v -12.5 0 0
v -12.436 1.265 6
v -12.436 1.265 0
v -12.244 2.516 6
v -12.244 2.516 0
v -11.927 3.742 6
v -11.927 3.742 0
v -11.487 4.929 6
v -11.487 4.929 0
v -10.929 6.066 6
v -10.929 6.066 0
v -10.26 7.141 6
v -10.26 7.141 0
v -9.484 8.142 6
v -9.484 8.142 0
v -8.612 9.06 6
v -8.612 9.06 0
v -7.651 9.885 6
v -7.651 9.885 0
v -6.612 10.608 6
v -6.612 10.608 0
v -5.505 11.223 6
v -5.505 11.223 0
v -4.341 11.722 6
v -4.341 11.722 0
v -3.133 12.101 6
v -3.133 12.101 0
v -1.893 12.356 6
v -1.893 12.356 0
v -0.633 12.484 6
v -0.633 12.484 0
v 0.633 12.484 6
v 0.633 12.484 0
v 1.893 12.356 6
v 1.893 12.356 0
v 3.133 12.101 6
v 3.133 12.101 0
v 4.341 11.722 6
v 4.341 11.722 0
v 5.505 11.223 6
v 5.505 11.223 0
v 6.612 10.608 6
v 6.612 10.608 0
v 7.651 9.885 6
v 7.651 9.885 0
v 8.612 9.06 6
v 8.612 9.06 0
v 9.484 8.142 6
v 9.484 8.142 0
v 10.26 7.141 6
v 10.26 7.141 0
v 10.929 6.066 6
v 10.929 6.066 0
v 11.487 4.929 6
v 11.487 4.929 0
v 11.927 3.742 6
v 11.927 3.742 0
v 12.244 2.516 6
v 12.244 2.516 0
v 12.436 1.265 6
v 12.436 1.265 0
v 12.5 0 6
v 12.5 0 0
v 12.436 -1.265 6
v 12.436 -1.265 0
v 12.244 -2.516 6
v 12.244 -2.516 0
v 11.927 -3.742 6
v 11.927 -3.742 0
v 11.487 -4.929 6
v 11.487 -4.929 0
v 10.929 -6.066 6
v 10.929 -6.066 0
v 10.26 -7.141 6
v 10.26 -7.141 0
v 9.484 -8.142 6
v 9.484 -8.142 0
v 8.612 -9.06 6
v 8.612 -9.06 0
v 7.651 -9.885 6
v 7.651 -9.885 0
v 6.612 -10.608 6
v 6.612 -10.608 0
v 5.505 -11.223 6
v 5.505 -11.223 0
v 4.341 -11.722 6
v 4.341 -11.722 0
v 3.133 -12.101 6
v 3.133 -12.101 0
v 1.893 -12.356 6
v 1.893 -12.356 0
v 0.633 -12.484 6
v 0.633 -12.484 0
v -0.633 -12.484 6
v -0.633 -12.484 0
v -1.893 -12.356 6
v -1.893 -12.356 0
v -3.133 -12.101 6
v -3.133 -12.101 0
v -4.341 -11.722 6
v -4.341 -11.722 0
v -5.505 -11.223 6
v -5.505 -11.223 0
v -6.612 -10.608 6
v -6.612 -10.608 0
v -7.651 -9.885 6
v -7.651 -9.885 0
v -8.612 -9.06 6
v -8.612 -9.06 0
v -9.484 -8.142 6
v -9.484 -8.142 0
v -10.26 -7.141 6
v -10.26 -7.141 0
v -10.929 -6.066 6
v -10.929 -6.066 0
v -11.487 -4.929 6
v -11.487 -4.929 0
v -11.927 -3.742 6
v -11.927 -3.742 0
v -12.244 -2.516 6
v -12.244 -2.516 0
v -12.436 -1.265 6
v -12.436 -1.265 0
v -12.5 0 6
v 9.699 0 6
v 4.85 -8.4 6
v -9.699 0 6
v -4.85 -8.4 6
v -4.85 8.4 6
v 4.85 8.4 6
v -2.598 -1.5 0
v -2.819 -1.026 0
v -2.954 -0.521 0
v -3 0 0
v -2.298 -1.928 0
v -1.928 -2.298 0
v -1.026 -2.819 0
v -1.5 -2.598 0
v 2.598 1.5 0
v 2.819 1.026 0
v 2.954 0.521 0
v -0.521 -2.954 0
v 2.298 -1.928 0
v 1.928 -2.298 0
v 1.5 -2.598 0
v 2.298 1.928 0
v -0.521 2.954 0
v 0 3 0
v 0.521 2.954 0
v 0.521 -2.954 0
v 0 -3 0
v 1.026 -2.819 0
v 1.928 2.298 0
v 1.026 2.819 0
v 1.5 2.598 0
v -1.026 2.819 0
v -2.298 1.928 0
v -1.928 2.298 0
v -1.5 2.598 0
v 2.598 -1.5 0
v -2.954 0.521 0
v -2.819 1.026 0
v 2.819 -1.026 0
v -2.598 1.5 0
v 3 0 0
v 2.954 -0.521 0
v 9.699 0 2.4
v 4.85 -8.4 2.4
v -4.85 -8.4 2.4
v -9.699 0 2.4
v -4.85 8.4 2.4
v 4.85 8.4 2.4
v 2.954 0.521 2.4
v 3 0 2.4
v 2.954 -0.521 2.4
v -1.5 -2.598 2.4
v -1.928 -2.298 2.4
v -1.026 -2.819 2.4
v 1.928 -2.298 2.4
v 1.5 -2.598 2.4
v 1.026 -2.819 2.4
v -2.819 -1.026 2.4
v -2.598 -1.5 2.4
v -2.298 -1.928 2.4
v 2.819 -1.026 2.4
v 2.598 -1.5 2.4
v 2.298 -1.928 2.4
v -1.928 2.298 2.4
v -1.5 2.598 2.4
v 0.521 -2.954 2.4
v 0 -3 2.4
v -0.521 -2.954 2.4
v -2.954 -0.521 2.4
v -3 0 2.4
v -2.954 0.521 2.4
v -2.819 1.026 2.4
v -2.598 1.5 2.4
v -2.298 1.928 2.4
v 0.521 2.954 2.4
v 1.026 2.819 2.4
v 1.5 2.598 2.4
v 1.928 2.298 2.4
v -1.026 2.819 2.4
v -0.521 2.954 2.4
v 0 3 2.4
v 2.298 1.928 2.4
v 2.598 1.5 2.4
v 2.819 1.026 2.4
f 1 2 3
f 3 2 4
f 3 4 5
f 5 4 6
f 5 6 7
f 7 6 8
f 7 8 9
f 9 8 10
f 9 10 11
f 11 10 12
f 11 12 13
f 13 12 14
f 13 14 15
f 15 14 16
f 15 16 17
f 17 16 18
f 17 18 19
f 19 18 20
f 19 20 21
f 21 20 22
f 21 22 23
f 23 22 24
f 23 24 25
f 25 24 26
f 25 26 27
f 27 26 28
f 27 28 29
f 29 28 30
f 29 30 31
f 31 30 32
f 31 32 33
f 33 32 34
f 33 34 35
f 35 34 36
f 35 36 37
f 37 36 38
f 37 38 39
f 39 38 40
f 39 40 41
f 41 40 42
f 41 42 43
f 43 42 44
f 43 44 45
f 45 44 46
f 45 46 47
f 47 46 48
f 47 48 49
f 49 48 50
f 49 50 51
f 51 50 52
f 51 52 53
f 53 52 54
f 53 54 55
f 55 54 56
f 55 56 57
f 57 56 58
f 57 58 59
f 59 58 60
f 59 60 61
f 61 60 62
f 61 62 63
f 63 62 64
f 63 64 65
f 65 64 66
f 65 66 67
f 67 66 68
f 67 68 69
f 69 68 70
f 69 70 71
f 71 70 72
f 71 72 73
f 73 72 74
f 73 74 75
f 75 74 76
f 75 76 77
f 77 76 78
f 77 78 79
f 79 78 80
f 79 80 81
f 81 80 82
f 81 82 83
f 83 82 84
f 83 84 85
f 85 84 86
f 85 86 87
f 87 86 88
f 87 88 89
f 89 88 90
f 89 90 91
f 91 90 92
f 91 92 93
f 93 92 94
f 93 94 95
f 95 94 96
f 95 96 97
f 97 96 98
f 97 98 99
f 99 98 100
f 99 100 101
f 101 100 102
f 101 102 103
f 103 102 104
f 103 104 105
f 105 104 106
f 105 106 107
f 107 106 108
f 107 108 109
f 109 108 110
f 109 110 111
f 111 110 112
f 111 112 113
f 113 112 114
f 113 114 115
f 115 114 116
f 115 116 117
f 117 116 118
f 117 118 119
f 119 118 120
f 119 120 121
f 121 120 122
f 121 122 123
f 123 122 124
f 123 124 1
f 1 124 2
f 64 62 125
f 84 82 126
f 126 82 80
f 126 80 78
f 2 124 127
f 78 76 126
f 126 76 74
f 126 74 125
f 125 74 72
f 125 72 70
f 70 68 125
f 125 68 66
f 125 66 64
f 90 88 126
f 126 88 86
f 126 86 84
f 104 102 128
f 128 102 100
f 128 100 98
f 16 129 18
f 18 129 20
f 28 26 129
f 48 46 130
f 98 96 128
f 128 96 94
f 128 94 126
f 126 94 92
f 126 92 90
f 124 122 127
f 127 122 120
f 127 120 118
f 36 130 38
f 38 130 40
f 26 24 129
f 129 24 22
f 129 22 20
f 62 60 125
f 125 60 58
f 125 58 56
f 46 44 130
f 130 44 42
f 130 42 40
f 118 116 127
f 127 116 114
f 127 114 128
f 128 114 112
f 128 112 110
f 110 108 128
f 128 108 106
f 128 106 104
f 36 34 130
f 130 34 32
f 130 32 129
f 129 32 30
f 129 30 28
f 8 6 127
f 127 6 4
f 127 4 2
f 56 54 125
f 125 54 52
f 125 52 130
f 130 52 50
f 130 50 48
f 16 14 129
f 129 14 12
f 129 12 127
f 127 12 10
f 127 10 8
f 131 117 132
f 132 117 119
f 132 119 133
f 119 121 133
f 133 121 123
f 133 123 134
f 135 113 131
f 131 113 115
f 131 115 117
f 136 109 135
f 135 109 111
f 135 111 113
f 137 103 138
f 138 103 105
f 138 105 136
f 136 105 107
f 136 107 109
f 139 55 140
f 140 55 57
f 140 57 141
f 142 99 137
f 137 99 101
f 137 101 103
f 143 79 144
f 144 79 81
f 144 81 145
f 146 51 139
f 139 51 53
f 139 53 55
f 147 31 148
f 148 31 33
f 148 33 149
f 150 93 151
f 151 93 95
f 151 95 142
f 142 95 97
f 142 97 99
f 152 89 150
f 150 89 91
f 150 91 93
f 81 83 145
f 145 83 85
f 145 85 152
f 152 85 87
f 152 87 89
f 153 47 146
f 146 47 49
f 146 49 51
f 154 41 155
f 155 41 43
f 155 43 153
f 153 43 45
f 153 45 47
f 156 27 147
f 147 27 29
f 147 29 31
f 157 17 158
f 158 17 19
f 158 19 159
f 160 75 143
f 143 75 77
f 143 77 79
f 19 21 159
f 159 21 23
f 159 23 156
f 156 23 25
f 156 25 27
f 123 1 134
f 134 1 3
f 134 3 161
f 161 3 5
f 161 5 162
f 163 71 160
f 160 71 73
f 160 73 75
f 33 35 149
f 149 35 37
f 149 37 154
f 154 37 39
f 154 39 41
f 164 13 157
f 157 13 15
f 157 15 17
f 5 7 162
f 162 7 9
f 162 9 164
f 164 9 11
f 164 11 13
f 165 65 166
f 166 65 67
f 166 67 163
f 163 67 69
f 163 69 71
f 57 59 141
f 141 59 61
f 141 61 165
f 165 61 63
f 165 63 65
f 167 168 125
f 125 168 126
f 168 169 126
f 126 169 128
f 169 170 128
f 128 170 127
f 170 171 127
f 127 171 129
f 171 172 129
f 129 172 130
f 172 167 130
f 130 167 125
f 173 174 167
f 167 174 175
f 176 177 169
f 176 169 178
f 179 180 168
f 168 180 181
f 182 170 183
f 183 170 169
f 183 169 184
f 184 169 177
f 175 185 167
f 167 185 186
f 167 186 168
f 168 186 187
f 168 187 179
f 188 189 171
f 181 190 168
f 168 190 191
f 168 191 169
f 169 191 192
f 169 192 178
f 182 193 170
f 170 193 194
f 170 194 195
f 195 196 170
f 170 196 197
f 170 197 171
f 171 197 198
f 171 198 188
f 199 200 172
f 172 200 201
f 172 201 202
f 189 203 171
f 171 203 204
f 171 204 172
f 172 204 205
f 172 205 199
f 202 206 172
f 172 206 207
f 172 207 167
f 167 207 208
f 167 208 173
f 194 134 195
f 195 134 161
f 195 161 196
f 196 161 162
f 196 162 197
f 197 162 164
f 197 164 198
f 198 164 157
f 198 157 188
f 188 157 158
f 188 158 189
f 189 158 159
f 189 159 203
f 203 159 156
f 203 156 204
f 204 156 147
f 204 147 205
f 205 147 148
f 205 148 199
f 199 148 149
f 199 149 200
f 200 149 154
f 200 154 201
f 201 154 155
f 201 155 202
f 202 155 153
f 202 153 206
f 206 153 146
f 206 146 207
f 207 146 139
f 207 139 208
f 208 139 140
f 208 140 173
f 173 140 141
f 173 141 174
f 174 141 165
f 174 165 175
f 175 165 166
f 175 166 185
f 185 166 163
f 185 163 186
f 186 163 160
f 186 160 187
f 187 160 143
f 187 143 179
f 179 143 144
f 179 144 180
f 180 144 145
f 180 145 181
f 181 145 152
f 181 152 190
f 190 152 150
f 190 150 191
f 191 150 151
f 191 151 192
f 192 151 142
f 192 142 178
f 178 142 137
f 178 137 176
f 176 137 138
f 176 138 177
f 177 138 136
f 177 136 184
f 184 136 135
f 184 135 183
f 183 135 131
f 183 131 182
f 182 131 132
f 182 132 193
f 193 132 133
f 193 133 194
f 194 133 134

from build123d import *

# Parameters (mm, degrees)
SKETCH_1_R          = 12.5
EXTRUDE_1_DEPTH     = 6
CUT_EXTRUDE_1_DEPTH = 3.6
SKETCH_3_R          = 3
CUT_EXTRUDE_2_DEPTH = 2.4


with BuildPart() as part:
    # 草图1 → 凸台-拉伸1 (new body)
    with BuildSketch(Plane.XY):
        Circle(SKETCH_1_R)
    extrude(amount=EXTRUDE_1_DEPTH)

    # 草图2 → 切除-拉伸1 (cut)
    with BuildSketch(Plane.XY.offset(6)):
        Polygon((9.699484522, 0), (4.849742261, 8.4), (-4.849742261, 8.4), (-9.699484522, 0), (-4.849742261, -8.4), (4.849742261, -8.4), align=None)
    extrude(amount=-CUT_EXTRUDE_1_DEPTH, mode=Mode.SUBTRACT)

    # 草图3 → 切除-拉伸2 (cut)
    with BuildSketch(Plane(origin=(0, 0, 0), x_dir=(-1, 0, 0), z_dir=(0, 0, -1))):
        Circle(SKETCH_3_R)
    extrude(amount=-CUT_EXTRUDE_2_DEPTH, mode=Mode.SUBTRACT)


solid = part.part
